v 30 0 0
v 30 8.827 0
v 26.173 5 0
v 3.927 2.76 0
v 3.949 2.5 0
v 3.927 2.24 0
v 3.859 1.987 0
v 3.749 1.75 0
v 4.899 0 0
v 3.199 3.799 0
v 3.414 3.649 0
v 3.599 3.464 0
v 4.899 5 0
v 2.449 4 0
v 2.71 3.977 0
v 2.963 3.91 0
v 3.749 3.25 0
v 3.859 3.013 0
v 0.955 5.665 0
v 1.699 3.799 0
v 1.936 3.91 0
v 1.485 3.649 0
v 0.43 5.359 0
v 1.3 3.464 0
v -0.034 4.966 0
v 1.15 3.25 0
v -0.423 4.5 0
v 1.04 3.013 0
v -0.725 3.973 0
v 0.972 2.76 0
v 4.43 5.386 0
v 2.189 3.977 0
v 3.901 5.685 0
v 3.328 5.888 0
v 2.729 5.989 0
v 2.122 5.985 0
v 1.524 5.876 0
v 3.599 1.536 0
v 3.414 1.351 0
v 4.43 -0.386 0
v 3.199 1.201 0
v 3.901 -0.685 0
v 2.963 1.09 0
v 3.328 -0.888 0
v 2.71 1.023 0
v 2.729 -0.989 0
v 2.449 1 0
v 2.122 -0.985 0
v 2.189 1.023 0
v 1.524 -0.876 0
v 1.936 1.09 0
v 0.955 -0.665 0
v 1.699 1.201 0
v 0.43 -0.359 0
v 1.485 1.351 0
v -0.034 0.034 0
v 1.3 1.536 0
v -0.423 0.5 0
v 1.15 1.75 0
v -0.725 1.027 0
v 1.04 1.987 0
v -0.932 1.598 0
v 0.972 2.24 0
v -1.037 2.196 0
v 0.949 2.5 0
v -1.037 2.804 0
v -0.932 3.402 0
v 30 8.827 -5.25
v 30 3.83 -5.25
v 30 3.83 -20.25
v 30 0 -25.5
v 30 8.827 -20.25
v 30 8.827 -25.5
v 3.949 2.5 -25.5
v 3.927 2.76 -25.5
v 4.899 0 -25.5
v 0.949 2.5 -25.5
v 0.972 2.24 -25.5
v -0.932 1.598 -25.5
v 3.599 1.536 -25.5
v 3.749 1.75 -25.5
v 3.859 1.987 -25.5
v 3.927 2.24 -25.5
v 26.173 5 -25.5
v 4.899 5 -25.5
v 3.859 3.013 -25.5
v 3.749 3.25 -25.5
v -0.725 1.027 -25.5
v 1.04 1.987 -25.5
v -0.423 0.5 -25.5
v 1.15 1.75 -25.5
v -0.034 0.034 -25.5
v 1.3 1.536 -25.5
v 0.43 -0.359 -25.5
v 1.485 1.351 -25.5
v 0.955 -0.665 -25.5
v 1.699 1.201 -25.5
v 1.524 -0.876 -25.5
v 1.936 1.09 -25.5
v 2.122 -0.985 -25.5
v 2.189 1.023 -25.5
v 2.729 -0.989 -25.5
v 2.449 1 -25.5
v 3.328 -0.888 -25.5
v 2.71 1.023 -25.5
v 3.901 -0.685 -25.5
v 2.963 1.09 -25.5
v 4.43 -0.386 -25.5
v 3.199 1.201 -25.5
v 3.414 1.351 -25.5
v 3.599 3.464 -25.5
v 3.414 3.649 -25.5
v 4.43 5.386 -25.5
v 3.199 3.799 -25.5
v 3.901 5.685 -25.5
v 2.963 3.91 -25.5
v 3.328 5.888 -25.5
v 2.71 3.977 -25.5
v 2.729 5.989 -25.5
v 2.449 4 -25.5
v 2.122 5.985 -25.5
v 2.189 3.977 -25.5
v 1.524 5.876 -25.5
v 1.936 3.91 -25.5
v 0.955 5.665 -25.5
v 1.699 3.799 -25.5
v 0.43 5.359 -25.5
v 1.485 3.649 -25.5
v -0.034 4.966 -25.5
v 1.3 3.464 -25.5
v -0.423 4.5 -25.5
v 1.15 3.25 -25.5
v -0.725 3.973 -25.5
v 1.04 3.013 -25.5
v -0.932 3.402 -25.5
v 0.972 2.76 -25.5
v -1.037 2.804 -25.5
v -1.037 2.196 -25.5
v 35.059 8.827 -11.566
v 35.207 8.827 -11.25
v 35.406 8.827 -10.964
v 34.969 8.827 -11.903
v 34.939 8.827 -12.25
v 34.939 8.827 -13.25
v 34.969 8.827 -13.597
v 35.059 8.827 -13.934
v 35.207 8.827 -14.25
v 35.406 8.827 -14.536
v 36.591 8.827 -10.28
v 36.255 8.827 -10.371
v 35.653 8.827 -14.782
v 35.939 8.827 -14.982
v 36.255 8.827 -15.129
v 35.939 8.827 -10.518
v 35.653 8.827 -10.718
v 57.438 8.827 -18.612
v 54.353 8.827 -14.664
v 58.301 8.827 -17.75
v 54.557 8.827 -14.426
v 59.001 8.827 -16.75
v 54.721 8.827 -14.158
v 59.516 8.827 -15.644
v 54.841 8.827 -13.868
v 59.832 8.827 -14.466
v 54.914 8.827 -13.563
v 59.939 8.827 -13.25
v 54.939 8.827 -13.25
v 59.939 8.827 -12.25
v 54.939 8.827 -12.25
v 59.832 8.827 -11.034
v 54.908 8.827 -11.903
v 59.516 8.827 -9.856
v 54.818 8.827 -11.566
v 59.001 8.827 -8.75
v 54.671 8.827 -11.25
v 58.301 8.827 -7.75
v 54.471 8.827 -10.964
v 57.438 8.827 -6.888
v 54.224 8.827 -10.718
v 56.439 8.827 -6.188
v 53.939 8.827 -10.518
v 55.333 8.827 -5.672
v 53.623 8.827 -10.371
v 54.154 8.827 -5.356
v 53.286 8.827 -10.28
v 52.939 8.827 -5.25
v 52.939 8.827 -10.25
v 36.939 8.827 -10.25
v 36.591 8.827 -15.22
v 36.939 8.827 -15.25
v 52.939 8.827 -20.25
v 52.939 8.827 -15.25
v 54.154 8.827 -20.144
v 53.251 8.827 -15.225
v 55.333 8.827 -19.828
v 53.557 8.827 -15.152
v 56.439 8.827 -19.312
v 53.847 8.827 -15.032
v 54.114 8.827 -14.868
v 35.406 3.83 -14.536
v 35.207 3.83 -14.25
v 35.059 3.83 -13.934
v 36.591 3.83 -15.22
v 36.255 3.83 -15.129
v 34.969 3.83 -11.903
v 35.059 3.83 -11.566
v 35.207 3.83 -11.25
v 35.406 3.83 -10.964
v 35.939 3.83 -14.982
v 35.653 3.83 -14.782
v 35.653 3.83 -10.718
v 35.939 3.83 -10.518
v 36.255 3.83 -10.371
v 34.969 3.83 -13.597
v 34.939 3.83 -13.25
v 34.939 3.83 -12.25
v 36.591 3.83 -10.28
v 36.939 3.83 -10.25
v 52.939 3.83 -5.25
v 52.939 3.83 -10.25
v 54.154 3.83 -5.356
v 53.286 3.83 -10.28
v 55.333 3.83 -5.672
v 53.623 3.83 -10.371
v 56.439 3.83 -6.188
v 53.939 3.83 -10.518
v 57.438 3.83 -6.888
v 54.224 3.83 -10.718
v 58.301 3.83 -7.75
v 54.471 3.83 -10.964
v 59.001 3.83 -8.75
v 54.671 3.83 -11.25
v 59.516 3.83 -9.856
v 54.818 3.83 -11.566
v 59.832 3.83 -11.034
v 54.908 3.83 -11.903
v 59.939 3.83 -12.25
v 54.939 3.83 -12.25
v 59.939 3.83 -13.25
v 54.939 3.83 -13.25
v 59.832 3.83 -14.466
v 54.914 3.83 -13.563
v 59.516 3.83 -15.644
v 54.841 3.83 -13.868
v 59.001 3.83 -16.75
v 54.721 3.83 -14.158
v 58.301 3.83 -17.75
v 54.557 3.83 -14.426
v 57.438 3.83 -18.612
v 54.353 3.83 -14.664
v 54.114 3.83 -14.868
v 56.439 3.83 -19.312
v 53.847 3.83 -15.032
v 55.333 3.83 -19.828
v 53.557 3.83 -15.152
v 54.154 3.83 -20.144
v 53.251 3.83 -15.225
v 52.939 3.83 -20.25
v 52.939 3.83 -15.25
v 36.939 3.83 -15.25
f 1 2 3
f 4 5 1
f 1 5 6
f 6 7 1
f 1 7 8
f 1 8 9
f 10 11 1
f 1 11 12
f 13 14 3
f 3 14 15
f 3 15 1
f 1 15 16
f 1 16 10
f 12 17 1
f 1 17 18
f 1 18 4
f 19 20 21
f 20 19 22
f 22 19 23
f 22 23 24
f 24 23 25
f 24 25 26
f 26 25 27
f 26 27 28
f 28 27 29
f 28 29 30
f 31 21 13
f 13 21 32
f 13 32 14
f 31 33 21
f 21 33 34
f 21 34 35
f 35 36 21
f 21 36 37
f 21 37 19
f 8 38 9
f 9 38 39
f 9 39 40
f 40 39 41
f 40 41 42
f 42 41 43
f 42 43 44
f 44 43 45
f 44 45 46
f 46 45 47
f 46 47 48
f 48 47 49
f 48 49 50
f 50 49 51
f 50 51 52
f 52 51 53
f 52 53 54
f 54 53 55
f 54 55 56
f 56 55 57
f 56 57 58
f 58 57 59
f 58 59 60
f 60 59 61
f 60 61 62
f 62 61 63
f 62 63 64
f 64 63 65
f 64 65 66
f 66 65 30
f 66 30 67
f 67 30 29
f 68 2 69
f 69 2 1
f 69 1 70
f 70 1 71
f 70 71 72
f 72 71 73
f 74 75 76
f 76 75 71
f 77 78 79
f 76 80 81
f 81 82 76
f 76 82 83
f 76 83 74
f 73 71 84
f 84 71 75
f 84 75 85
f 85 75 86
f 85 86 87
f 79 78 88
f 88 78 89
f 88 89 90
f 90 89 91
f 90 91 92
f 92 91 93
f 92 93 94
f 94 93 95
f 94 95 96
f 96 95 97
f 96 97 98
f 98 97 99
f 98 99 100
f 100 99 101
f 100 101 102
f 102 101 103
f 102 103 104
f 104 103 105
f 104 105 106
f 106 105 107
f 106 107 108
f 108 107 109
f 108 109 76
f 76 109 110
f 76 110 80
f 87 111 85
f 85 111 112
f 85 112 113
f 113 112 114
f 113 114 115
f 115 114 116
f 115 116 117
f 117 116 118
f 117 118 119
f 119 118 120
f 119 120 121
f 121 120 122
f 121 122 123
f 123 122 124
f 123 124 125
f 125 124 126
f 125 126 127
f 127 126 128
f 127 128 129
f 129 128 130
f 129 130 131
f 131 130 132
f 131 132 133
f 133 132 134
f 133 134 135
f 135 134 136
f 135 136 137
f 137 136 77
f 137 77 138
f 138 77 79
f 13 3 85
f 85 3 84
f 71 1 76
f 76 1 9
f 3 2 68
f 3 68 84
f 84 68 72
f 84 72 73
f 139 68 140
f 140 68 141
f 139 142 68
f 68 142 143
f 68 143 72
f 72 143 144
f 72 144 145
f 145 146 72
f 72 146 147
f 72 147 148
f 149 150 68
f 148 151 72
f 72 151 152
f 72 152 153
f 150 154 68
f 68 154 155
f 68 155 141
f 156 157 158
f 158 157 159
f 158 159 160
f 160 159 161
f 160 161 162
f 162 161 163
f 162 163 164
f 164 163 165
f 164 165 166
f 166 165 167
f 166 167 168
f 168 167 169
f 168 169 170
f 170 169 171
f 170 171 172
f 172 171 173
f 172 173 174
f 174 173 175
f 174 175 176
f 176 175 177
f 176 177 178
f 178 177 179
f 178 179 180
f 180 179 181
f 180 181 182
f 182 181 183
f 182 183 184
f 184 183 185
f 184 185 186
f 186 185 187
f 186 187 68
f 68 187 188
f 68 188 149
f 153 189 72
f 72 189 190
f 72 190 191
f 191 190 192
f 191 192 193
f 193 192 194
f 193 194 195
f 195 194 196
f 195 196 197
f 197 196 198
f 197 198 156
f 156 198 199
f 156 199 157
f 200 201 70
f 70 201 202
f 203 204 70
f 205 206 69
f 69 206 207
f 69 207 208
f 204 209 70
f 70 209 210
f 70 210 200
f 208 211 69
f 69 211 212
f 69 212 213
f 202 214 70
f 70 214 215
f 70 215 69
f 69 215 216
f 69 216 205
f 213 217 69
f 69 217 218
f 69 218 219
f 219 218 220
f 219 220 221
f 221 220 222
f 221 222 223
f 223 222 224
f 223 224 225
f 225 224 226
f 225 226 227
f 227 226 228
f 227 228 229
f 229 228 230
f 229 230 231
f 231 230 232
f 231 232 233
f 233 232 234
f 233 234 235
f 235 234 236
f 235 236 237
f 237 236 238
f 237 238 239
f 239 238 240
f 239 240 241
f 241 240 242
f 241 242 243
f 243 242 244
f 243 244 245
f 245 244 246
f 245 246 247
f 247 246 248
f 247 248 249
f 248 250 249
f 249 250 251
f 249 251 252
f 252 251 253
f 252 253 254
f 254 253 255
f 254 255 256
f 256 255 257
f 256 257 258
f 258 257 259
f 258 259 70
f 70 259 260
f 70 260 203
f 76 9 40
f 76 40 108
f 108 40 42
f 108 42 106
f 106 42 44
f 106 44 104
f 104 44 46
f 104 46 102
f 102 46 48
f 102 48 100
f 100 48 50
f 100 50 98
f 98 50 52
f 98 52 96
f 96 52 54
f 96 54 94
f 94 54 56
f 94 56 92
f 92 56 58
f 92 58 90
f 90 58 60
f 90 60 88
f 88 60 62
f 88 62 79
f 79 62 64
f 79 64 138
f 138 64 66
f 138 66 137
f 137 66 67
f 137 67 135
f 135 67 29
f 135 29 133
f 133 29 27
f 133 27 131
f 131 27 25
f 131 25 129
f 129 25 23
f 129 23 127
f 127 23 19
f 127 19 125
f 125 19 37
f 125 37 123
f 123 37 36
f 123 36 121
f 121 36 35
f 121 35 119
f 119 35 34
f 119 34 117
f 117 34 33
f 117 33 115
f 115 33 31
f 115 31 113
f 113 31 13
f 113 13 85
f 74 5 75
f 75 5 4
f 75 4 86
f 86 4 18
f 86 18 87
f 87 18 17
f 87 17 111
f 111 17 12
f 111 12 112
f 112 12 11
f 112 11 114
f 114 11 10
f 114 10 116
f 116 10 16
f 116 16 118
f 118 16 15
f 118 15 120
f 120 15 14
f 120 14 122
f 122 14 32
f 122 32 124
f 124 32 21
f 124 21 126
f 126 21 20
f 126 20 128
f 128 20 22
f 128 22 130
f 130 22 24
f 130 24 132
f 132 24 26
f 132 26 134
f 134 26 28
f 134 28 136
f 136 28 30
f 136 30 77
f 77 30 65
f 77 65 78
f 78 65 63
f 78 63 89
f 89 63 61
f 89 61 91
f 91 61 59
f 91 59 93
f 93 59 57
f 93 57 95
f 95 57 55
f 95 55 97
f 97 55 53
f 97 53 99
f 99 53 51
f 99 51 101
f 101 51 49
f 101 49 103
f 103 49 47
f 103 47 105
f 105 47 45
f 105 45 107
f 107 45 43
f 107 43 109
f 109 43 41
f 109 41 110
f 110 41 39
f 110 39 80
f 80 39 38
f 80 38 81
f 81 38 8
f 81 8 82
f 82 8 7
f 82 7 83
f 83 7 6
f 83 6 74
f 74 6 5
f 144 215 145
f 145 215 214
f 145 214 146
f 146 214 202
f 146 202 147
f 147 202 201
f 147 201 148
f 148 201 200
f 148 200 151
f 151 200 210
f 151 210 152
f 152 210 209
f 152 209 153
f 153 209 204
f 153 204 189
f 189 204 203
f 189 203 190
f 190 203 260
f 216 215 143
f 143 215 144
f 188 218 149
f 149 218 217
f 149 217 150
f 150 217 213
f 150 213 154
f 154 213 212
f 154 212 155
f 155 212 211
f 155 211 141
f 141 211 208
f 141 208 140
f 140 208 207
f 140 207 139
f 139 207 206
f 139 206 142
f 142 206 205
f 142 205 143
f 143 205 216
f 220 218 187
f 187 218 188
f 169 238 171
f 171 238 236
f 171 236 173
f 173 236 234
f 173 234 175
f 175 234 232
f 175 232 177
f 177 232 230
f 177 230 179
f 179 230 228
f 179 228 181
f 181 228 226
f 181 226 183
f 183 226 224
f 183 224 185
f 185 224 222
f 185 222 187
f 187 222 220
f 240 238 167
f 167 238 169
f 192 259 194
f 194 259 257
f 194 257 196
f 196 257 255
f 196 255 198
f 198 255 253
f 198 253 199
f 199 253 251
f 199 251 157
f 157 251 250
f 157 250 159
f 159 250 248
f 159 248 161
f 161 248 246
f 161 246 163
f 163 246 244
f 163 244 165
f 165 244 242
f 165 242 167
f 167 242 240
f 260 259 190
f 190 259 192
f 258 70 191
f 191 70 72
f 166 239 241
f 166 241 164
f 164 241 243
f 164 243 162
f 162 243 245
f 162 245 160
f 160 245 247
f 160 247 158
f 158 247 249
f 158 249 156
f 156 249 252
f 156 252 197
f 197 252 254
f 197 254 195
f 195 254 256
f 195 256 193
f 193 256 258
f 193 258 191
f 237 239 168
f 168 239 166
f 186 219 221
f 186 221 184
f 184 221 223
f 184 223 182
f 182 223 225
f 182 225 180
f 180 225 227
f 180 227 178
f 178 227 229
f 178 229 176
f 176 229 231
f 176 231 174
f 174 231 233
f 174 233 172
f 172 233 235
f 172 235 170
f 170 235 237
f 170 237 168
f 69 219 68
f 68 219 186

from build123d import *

# Parameters (mm, degrees)
CROQUIS1_W              = 30
CROQUIS1_H              = 25.5
SALIENTE_EXTRUIR1_DEPTH = 5
SALIENTE_EXTRUIR2_DEPTH = 25.5
CROQUIS3_R              = 3.5
SALIENTE_EXTRUIR3_DEPTH = 25.5
CROQUIS4_R              = 1.5
CORTAR_EXTRUIR1_DEPTH   = 31
CORTAR_EXTRUIR2_DEPTH   = 31
CORTAR_EXTRUIR3_DEPTH   = 12


with BuildPart() as part:
    # Croquis1 → Saliente-Extruir1 (new body)
    with BuildSketch(Plane(origin=(0, 0, 0), x_dir=(1, 0, 0), z_dir=(0, 1, 0))):
        with Locations((15, 12.75)):
            Rectangle(CROQUIS1_W, CROQUIS1_H)
    extrude(amount=SALIENTE_EXTRUIR1_DEPTH)

    # Croquis2 → Saliente-Extruir2 (add)
    with BuildSketch(Plane.XY):
        Polygon((26.173467515, 5), (30, 8.826532485), (60, 8.826532485), (60, 3.829826023), (30, 3.829826023), (30, 5), align=None)
    extrude(amount=-SALIENTE_EXTRUIR2_DEPTH)

    # Croquis3 → Saliente-Extruir3 (add)
    with BuildSketch(Plane.XY):
        with Locations((2.449489743, 2.5)):
            Circle(CROQUIS3_R)
    extrude(amount=-SALIENTE_EXTRUIR3_DEPTH)

    # Croquis4 → Cortar-Extruir1 (cut)
    with BuildSketch(Plane.XY):
        with Locations((2.449489743, 2.5)):
            Circle(CROQUIS4_R)
    extrude(amount=-CORTAR_EXTRUIR1_DEPTH, mode=Mode.SUBTRACT)

    # Croquis5 → Cortar-Extruir2 (cut)
    with BuildSketch(Plane.XZ.offset(-3.829826023)):
        with BuildLine():
            Line((52.938565695, -10.25), (36.938565695, -10.25))
            ThreePointArc((36.938565695, -10.25), (35.524352133, -10.835786438), (34.938565695, -12.25))
            Line((34.938565695, -12.25), (34.938565695, -13.25))
            ThreePointArc((34.938565695, -13.25), (35.524352133, -14.664213562), (36.938565695, -15.25))
            Line((36.938565695, -15.25), (52.938565695, -15.25))
            ThreePointArc((52.938565695, -15.25), (54.352779258, -14.664213562), (54.938565695, -13.25))
            Line((54.938565695, -13.25), (54.938565695, -12.25))
            ThreePointArc((54.938565695, -12.25), (54.352779258, -10.835786438), (52.938565695, -10.25))
        make_face()
    extrude(amount=-CORTAR_EXTRUIR2_DEPTH, mode=Mode.SUBTRACT)

    # Croquis6 → Cortar-Extruir3 (cut)
    with BuildSketch(Plane.XZ.offset(-3.829826023)):
        with BuildLine():
            Line((36.938565695, -5.25), (30, -5.25))
            Line((30, -5.25), (30, 0))
            Line((30, 0), (60, 0))
            Line((60, 0), (60, -25.5))
            Line((60, -25.5), (30, -25.5))
            Line((30, -25.5), (30, -20.25))
            Line((30, -20.25), (36.938565695, -20.25))
            Line((36.938565695, -20.25), (52.938565695, -20.25))
            ThreePointArc((52.938565695, -20.25), (57.888313164, -18.199747468), (59.938565695, -13.25))
            Line((59.938565695, -13.25), (59.938565695, -12.25))
            ThreePointArc((59.938565695, -12.25), (57.888313164, -7.300252532), (52.938565695, -5.25))
            Line((52.938565695, -5.25), (36.938565695, -5.25))
        make_face()
    extrude(amount=-CORTAR_EXTRUIR3_DEPTH, mode=Mode.SUBTRACT)


solid = part.part
